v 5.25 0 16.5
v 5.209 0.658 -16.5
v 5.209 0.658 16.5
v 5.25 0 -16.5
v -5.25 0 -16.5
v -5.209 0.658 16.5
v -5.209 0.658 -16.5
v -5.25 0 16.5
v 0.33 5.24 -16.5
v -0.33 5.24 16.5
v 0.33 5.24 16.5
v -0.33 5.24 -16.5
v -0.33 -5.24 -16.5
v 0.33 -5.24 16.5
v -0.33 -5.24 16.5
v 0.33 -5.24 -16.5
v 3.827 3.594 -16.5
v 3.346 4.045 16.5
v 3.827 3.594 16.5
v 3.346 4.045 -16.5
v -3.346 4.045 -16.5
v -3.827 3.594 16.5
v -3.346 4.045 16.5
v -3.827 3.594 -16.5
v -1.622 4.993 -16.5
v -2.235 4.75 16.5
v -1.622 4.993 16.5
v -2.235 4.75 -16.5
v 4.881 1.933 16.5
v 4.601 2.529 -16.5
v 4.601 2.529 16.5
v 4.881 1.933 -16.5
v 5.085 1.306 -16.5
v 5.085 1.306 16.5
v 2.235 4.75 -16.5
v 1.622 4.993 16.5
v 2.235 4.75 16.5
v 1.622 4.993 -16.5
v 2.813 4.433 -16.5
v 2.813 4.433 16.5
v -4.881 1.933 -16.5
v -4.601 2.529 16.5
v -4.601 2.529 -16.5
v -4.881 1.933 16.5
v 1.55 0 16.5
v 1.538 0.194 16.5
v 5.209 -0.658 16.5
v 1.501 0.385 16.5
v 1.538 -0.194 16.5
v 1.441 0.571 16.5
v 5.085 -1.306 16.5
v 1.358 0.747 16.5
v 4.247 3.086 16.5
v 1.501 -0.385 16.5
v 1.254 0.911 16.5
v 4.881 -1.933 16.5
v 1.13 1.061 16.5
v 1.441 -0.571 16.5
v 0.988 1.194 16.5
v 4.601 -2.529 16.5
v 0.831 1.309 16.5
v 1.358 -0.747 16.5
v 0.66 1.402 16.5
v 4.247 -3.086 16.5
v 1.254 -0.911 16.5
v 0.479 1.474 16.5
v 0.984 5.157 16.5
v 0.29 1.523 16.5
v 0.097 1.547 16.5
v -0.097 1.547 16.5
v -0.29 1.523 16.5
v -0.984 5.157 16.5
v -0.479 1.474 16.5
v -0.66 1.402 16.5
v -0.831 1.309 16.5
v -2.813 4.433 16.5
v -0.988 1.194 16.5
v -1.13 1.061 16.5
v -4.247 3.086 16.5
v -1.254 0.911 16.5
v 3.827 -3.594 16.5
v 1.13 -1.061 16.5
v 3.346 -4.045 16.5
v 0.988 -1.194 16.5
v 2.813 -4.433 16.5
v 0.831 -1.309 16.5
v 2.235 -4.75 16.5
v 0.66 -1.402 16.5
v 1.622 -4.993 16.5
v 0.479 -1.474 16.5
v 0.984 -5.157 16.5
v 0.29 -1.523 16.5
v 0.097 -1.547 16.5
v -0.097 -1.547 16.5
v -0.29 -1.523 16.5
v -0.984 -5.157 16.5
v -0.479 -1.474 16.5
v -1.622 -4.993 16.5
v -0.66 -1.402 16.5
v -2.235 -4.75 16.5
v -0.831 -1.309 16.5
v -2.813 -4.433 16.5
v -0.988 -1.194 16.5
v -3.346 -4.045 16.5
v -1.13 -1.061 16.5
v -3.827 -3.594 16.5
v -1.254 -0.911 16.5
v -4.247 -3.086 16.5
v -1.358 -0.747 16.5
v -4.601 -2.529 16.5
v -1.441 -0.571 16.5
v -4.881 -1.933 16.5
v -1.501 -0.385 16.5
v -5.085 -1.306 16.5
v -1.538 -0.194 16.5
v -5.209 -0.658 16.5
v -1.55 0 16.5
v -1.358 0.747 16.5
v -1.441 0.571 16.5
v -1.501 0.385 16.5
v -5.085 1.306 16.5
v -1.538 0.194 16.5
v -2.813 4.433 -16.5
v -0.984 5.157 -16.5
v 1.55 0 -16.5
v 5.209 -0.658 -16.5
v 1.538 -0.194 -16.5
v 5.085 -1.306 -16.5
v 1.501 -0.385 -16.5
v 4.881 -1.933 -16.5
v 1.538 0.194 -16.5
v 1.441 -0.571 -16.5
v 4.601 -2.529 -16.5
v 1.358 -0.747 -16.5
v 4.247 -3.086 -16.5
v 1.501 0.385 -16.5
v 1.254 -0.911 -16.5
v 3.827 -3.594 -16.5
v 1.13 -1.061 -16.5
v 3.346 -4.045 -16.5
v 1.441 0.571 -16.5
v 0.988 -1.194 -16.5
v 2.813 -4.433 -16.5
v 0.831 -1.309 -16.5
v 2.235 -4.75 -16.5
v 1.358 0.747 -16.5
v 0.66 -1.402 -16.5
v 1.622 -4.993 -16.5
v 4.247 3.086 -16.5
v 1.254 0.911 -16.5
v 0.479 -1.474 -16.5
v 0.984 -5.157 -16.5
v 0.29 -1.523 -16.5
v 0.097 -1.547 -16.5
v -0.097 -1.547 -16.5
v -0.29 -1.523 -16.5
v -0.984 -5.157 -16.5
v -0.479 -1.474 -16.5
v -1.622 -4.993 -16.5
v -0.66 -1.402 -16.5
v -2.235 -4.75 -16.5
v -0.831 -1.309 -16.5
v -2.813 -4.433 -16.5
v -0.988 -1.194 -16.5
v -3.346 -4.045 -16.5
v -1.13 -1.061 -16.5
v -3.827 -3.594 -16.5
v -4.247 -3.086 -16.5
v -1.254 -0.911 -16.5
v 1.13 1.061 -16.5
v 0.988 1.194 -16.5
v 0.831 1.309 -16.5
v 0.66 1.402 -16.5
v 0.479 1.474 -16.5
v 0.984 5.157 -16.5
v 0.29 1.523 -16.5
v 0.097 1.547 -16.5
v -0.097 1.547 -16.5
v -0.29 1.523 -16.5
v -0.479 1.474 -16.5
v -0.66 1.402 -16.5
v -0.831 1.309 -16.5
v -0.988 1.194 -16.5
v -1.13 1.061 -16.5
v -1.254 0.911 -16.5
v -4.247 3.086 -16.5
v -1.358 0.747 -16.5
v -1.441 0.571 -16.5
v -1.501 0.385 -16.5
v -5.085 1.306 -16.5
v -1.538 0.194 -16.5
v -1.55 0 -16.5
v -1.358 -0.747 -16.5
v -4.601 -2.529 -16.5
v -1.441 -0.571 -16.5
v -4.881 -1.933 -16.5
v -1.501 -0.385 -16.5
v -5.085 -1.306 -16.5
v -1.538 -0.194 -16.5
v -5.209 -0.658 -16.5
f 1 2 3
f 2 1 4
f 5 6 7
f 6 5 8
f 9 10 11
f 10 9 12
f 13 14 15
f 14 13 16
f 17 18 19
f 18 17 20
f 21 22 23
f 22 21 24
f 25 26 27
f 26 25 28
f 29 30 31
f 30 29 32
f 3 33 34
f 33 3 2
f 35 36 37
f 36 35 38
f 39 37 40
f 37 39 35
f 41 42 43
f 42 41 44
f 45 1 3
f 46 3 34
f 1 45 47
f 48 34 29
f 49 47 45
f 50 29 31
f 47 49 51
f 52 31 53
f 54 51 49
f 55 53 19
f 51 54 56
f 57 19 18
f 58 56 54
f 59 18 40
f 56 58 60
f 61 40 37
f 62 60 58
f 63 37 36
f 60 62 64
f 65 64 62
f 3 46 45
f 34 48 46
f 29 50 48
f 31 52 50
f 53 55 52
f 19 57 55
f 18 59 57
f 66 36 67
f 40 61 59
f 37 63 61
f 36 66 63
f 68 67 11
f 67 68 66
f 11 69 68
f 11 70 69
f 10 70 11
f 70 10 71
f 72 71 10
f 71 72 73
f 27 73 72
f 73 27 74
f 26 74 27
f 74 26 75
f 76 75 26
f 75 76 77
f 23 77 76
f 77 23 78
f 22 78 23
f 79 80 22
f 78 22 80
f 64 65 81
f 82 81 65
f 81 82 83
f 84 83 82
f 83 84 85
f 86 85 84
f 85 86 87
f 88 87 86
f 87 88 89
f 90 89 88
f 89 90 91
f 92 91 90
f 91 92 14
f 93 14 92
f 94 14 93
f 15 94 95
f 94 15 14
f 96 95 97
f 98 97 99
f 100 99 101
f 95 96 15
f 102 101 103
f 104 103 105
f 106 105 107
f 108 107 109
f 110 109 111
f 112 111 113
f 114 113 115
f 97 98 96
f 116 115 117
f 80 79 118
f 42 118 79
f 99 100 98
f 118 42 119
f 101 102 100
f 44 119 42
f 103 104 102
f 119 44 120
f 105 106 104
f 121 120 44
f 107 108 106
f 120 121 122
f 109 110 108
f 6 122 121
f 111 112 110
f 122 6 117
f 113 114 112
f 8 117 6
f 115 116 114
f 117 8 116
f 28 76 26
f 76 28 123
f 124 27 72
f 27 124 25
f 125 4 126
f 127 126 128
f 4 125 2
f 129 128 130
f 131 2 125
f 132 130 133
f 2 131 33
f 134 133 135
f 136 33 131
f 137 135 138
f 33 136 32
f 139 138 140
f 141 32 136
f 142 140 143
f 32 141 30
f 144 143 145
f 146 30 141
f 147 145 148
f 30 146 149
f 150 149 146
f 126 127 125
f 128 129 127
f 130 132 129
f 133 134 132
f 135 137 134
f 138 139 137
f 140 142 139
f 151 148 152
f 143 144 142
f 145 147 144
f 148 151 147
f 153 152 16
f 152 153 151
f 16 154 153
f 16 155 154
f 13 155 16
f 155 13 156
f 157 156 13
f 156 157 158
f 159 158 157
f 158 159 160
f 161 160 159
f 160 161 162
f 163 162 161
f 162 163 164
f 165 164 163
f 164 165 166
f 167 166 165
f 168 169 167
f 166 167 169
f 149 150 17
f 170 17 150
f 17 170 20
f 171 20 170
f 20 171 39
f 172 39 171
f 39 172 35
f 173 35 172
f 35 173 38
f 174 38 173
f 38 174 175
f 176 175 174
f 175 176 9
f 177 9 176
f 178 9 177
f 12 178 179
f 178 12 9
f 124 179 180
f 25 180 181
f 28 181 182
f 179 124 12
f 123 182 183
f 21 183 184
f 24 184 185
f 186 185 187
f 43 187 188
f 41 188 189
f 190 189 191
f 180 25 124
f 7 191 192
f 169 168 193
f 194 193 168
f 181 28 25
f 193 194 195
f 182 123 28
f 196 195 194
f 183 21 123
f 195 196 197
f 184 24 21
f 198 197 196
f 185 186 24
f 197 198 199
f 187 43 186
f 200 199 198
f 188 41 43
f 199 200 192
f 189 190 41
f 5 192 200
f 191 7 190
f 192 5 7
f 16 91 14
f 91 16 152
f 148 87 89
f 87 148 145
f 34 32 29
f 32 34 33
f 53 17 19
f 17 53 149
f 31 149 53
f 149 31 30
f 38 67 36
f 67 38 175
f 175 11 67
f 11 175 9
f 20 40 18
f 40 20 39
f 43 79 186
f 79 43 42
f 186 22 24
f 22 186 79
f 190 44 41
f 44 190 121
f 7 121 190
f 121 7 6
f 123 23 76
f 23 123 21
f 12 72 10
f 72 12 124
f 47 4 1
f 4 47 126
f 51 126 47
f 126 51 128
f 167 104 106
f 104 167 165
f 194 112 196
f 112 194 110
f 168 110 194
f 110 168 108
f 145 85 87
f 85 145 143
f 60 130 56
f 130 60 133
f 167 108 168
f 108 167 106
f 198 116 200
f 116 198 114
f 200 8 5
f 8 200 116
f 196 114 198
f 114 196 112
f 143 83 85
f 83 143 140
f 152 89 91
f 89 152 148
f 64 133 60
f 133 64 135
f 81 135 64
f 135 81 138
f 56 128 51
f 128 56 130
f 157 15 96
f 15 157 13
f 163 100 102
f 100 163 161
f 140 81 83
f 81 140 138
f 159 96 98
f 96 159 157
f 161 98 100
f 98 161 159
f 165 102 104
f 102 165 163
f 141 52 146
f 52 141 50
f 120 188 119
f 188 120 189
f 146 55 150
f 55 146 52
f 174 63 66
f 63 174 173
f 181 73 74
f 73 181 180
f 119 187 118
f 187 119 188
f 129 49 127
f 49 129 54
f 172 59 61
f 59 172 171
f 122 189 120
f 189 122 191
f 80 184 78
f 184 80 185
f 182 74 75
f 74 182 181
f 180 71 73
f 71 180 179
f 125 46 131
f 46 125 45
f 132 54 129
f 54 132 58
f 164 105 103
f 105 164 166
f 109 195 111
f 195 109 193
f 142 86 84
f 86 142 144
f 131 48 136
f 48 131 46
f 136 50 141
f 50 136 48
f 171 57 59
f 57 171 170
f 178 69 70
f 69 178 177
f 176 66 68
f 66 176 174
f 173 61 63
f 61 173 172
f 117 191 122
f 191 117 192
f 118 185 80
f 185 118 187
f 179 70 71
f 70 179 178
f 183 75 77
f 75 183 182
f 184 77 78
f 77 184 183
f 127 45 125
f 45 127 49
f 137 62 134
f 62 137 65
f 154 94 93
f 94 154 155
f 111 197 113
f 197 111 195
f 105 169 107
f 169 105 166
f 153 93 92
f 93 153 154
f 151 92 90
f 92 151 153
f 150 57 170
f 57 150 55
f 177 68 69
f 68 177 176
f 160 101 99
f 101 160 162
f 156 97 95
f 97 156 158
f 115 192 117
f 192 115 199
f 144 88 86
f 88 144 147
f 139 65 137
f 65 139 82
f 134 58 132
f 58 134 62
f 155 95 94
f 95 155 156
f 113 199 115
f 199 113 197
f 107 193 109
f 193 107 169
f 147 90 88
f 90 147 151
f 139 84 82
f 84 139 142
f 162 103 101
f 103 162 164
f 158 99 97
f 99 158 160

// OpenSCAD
$fn = 50;


difference() {
	union() {
		translate(v = [0, 0, -16.5000000000]) {
			cylinder(h = 33, r = 5.2500000000);
		}
	}
	union() {
		translate(v = [0, 0, -100.0000000000]) {
			cylinder(h = 200, r = 1.5500000000);
		}
	}
}
